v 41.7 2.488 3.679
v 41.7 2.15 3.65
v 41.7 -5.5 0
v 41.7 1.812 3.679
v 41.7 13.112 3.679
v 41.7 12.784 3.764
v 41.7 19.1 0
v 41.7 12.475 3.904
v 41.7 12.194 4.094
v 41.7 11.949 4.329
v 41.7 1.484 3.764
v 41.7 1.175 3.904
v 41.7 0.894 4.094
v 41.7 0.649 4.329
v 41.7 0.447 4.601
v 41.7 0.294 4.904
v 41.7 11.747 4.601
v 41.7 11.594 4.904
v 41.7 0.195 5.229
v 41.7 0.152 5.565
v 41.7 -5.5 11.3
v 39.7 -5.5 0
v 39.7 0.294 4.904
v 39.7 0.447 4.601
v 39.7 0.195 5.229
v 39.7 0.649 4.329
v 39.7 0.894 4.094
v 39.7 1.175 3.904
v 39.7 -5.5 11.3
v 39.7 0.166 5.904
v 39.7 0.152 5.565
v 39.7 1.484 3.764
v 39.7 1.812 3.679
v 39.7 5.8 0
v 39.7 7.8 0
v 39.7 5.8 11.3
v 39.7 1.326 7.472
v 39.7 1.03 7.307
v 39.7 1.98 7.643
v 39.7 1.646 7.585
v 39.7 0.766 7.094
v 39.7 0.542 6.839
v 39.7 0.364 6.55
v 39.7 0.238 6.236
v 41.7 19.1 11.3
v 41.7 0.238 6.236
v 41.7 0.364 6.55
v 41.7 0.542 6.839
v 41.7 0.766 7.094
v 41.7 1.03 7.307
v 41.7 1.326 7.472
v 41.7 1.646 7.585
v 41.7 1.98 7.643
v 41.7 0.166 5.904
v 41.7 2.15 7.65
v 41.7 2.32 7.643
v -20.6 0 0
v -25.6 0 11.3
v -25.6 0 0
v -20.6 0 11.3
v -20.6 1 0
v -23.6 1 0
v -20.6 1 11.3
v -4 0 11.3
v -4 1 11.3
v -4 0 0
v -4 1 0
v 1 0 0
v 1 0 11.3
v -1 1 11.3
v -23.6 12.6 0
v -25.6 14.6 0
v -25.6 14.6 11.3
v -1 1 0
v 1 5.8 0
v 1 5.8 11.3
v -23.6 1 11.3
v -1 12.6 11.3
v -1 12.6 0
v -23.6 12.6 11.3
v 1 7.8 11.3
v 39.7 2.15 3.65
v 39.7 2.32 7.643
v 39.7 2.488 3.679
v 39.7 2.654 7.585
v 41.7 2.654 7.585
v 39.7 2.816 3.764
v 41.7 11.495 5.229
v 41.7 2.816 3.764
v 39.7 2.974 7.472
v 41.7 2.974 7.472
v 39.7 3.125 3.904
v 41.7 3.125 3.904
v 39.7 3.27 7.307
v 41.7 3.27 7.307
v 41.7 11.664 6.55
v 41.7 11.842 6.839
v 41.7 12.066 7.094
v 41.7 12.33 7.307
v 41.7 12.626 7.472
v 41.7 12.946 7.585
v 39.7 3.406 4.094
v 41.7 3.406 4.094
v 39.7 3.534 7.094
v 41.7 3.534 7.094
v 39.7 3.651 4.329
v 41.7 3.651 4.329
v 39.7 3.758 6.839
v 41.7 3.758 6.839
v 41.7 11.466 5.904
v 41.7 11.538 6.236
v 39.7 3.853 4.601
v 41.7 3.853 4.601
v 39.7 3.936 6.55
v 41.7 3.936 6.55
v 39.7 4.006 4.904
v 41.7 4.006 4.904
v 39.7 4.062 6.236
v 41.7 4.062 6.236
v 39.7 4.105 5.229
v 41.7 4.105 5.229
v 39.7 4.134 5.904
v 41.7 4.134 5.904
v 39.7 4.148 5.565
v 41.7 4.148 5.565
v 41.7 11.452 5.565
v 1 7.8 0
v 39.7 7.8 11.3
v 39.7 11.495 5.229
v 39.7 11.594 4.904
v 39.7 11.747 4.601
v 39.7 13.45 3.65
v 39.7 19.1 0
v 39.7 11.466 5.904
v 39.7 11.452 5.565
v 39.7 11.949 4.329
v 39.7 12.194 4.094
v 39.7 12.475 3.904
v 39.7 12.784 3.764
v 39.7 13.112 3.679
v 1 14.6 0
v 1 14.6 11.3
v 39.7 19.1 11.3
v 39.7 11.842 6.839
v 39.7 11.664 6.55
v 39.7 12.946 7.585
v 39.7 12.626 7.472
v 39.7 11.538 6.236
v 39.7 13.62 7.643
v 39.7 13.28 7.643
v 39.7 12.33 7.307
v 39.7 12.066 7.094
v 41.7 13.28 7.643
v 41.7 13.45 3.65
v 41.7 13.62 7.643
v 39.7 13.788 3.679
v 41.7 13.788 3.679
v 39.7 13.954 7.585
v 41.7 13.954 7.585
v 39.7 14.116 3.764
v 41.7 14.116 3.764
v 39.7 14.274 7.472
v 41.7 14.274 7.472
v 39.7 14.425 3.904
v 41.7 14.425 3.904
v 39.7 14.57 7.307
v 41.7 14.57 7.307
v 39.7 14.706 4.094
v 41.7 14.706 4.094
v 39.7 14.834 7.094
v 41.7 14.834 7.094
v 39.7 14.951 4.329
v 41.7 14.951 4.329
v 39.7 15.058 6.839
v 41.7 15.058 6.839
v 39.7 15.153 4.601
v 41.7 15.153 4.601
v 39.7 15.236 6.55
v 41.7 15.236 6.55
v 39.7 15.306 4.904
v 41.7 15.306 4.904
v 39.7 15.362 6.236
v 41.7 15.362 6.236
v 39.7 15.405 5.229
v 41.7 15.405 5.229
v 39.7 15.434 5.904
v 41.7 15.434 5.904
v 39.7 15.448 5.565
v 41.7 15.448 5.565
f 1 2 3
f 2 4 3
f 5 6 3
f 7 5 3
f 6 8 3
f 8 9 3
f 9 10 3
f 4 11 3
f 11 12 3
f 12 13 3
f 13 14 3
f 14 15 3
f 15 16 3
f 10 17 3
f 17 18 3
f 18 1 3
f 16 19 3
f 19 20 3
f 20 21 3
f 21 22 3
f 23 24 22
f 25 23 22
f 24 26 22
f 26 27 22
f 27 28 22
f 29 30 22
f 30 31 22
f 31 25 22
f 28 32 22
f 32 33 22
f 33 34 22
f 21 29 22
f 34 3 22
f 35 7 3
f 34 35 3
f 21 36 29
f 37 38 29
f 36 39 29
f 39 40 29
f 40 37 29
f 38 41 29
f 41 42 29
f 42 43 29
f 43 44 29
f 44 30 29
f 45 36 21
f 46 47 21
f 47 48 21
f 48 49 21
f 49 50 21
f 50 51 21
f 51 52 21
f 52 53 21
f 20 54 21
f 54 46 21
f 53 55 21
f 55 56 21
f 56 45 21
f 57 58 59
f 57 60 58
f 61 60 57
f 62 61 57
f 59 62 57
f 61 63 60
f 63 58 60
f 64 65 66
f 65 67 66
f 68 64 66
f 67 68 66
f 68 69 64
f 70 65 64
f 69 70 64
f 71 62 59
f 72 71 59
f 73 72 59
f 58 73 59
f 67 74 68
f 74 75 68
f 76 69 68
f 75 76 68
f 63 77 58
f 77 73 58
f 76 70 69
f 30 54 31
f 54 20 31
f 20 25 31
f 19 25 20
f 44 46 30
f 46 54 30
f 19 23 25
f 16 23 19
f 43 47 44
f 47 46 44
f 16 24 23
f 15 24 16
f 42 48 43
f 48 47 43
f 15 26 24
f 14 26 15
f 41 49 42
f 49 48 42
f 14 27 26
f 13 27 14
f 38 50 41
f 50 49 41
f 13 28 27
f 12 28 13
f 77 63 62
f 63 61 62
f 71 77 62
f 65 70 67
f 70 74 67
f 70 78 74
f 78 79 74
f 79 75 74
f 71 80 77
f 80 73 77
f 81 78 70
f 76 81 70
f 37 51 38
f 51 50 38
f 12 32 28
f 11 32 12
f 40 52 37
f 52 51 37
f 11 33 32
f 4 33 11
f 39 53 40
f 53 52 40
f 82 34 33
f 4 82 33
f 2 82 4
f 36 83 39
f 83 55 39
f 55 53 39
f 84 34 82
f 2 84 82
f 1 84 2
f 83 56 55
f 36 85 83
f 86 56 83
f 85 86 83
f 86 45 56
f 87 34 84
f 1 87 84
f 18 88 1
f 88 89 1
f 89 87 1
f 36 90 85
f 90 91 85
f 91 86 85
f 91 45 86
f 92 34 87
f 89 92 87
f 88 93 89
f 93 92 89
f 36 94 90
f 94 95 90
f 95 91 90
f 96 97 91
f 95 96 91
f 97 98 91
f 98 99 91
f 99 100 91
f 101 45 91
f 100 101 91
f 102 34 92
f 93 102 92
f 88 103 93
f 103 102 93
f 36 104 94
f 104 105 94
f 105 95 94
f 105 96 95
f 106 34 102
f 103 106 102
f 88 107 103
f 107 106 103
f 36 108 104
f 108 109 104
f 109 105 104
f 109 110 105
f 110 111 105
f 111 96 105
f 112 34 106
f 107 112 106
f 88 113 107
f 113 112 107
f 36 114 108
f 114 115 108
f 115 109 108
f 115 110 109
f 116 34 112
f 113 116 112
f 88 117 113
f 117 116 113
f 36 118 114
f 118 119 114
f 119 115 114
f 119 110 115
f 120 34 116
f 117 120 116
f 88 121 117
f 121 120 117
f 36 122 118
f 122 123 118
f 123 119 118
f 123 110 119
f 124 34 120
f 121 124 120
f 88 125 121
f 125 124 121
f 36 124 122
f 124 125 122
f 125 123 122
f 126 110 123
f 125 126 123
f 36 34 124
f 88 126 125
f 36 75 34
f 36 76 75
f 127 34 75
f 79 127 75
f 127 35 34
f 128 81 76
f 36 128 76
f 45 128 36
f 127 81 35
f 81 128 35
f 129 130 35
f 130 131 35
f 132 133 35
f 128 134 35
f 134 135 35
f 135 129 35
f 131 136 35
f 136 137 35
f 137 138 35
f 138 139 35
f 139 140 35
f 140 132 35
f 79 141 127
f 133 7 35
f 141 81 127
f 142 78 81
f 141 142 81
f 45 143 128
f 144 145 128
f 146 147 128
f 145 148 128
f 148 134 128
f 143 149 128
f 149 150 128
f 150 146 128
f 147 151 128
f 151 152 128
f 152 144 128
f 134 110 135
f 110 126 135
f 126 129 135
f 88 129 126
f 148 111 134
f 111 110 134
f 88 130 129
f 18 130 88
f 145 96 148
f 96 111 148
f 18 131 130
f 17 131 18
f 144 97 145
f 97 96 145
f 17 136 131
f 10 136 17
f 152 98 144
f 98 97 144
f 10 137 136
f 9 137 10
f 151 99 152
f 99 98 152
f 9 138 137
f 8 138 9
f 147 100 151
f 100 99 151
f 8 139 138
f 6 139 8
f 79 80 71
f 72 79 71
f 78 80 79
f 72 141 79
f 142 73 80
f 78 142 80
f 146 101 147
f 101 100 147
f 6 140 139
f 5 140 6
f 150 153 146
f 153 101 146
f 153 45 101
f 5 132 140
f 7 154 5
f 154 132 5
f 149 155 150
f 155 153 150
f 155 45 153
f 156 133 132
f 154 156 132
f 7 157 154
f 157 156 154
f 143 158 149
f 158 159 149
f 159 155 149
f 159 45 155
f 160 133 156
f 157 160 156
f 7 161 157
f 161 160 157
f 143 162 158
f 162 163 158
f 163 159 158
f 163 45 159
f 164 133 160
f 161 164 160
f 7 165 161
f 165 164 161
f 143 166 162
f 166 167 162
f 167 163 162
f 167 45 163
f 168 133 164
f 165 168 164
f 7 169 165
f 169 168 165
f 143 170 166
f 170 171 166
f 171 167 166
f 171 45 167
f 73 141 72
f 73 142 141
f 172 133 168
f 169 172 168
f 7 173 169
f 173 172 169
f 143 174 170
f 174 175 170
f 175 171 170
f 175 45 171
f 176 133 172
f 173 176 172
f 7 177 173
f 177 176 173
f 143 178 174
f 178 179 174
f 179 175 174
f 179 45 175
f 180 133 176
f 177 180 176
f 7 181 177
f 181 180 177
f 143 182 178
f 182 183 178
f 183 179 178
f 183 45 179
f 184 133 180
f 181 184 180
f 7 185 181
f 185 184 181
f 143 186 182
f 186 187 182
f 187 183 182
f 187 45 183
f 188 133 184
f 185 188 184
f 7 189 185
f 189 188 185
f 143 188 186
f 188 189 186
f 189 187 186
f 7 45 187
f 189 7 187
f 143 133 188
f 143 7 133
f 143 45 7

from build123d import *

# Parameters (mm, degrees)
BOSS_EXTRU_1_DEPTH      = 11.3
ESQUISSE2_W             = 8.6
ESQUISSE2_H             = 11.3
BOSS_EXTRU_2_DEPTH      = 1
ESQUISSE8_W             = 11.3
ESQUISSE8_H             = 1
BOSS_EXTRU_5_DEPTH      = 10
ESQUISSE9_W             = 2
ESQUISSE9_H             = 11.3
BOSS_EXTRU_6_DEPTH      = 7.8
ESQUISSE10_W            = 11.3
ESQUISSE10_H            = 2
BOSS_EXTRU_7_DEPTH      = 39.7
ESQUISSE11_W            = 2
ESQUISSE11_H            = 11.3
BOSS_EXTRU_8_DEPTH      = 11.3
ESQUISSE12_W            = 2
ESQUISSE12_H            = 11.3
BOSS_EXTRU_9_DEPTH      = 11.3
BOSS_EXTRU_10_DEPTH     = 11.3
ESQUISSE14_W            = 1
ESQUISSE14_H            = 11.3
BOSS_EXTRU_11_DEPTH     = 5.8
ESQUISSE16_W            = 11.3
ESQUISSE16_H            = 6.8
ENL_V_MAT_EXTRU_1_DEPTH = 1
ESQUISSE19_R            = 2
ENL_V_MAT_EXTRU_3_DEPTH = 10


with BuildPart() as part:
    # Esquisse1 → Boss.-Extru.1 (new body)
    with BuildSketch(Plane.XY):
        Polygon((-20.6, 1), (-20.6, 0), (-24.6, 0), (-24.6, 13.6), (0, 13.6), (0, 0), (-4, 0), (-4, 1), (-1, 1), (-1, 12.6), (-23.6, 12.6), (-23.6, 1), align=None)
    extrude(amount=BOSS_EXTRU_1_DEPTH)

    # Esquisse2 → Boss.-Extru.2 (add)
    with BuildSketch(Plane(origin=(0, 13.6, 0), x_dir=(1, 0, 0), z_dir=(0, 1, 0))):
        with Locations((-12.3, -5.65)):
            Rectangle(ESQUISSE2_W, ESQUISSE2_H)
    extrude(amount=BOSS_EXTRU_2_DEPTH)

    # Esquisse8 → Boss.-Extru.5 (add)
    with BuildSketch(Plane(origin=(-8, 0, 0), x_dir=(0, 0, -1), z_dir=(1, 0, 0))):
        with Locations((-5.65, 14.1)):
            Rectangle(ESQUISSE8_W, ESQUISSE8_H)
    extrude(amount=BOSS_EXTRU_5_DEPTH)

    # Esquisse9 → Boss.-Extru.6 (add)
    with BuildSketch(Plane.XZ.offset(-13.6)):
        with Locations((1, 5.65)):
            Rectangle(ESQUISSE9_W, ESQUISSE9_H)
    extrude(amount=BOSS_EXTRU_6_DEPTH)

    # Esquisse10 → Boss.-Extru.7 (add)
    with BuildSketch(Plane(origin=(2, 0, 0), x_dir=(0, 0, -1), z_dir=(1, 0, 0))):
        with Locations((-5.65, 6.8)):
            Rectangle(ESQUISSE10_W, ESQUISSE10_H)
    extrude(amount=BOSS_EXTRU_7_DEPTH)

    # Esquisse11 → Boss.-Extru.8 (add)
    with BuildSketch(Plane.XZ.offset(-5.8)):
        with Locations((40.7, 5.65)):
            Rectangle(ESQUISSE11_W, ESQUISSE11_H)
    extrude(amount=BOSS_EXTRU_8_DEPTH)

    # Esquisse12 → Boss.-Extru.9 (add)
    with BuildSketch(Plane(origin=(0, 7.8, 0), x_dir=(1, 0, 0), z_dir=(0, 1, 0))):
        with Locations((40.7, -5.65)):
            Rectangle(ESQUISSE12_W, ESQUISSE12_H)
    extrude(amount=BOSS_EXTRU_9_DEPTH)

    # Esquisse13 → Boss.-Extru.10 (add)
    with BuildSketch(Plane.XY.offset(11.3)):
        Polygon((-16.6, 14.6), (-25.6, 14.6), (-25.6, 0), (-24.6, 0), (-24.6, 13.6), (-16.6, 13.6), align=None)
    extrude(amount=-BOSS_EXTRU_10_DEPTH)

    # Esquisse14 → Boss.-Extru.11 (add)
    with BuildSketch(Plane.XZ.offset(-5.8)):
        with Locations((0.5, 5.65)):
            Rectangle(ESQUISSE14_W, ESQUISSE14_H)
    extrude(amount=BOSS_EXTRU_11_DEPTH)

    # Esquisse16 → Enlèv. mat.-Extru.1 (cut)
    with BuildSketch(Plane(origin=(2, 0, 0), x_dir=(0, 0, -1), z_dir=(1, 0, 0))):
        with Locations((-5.65, 11.2)):
            Rectangle(ESQUISSE16_W, ESQUISSE16_H)
    extrude(amount=-ENL_V_MAT_EXTRU_1_DEPTH, mode=Mode.SUBTRACT)

    # Esquisse19 → Enlèv. mat.-Extru.3 (cut)
    with BuildSketch(Plane(origin=(41.7, 0, 0), x_dir=(0, 0, -1), z_dir=(1, 0, 0))):
        with Locations((-5.65, 13.45)):
            Circle(ESQUISSE19_R)
        with Locations((-5.65, 2.15)):
            Circle(ESQUISSE19_R)
    extrude(amount=-ENL_V_MAT_EXTRU_3_DEPTH, mode=Mode.SUBTRACT)


solid = part.part
